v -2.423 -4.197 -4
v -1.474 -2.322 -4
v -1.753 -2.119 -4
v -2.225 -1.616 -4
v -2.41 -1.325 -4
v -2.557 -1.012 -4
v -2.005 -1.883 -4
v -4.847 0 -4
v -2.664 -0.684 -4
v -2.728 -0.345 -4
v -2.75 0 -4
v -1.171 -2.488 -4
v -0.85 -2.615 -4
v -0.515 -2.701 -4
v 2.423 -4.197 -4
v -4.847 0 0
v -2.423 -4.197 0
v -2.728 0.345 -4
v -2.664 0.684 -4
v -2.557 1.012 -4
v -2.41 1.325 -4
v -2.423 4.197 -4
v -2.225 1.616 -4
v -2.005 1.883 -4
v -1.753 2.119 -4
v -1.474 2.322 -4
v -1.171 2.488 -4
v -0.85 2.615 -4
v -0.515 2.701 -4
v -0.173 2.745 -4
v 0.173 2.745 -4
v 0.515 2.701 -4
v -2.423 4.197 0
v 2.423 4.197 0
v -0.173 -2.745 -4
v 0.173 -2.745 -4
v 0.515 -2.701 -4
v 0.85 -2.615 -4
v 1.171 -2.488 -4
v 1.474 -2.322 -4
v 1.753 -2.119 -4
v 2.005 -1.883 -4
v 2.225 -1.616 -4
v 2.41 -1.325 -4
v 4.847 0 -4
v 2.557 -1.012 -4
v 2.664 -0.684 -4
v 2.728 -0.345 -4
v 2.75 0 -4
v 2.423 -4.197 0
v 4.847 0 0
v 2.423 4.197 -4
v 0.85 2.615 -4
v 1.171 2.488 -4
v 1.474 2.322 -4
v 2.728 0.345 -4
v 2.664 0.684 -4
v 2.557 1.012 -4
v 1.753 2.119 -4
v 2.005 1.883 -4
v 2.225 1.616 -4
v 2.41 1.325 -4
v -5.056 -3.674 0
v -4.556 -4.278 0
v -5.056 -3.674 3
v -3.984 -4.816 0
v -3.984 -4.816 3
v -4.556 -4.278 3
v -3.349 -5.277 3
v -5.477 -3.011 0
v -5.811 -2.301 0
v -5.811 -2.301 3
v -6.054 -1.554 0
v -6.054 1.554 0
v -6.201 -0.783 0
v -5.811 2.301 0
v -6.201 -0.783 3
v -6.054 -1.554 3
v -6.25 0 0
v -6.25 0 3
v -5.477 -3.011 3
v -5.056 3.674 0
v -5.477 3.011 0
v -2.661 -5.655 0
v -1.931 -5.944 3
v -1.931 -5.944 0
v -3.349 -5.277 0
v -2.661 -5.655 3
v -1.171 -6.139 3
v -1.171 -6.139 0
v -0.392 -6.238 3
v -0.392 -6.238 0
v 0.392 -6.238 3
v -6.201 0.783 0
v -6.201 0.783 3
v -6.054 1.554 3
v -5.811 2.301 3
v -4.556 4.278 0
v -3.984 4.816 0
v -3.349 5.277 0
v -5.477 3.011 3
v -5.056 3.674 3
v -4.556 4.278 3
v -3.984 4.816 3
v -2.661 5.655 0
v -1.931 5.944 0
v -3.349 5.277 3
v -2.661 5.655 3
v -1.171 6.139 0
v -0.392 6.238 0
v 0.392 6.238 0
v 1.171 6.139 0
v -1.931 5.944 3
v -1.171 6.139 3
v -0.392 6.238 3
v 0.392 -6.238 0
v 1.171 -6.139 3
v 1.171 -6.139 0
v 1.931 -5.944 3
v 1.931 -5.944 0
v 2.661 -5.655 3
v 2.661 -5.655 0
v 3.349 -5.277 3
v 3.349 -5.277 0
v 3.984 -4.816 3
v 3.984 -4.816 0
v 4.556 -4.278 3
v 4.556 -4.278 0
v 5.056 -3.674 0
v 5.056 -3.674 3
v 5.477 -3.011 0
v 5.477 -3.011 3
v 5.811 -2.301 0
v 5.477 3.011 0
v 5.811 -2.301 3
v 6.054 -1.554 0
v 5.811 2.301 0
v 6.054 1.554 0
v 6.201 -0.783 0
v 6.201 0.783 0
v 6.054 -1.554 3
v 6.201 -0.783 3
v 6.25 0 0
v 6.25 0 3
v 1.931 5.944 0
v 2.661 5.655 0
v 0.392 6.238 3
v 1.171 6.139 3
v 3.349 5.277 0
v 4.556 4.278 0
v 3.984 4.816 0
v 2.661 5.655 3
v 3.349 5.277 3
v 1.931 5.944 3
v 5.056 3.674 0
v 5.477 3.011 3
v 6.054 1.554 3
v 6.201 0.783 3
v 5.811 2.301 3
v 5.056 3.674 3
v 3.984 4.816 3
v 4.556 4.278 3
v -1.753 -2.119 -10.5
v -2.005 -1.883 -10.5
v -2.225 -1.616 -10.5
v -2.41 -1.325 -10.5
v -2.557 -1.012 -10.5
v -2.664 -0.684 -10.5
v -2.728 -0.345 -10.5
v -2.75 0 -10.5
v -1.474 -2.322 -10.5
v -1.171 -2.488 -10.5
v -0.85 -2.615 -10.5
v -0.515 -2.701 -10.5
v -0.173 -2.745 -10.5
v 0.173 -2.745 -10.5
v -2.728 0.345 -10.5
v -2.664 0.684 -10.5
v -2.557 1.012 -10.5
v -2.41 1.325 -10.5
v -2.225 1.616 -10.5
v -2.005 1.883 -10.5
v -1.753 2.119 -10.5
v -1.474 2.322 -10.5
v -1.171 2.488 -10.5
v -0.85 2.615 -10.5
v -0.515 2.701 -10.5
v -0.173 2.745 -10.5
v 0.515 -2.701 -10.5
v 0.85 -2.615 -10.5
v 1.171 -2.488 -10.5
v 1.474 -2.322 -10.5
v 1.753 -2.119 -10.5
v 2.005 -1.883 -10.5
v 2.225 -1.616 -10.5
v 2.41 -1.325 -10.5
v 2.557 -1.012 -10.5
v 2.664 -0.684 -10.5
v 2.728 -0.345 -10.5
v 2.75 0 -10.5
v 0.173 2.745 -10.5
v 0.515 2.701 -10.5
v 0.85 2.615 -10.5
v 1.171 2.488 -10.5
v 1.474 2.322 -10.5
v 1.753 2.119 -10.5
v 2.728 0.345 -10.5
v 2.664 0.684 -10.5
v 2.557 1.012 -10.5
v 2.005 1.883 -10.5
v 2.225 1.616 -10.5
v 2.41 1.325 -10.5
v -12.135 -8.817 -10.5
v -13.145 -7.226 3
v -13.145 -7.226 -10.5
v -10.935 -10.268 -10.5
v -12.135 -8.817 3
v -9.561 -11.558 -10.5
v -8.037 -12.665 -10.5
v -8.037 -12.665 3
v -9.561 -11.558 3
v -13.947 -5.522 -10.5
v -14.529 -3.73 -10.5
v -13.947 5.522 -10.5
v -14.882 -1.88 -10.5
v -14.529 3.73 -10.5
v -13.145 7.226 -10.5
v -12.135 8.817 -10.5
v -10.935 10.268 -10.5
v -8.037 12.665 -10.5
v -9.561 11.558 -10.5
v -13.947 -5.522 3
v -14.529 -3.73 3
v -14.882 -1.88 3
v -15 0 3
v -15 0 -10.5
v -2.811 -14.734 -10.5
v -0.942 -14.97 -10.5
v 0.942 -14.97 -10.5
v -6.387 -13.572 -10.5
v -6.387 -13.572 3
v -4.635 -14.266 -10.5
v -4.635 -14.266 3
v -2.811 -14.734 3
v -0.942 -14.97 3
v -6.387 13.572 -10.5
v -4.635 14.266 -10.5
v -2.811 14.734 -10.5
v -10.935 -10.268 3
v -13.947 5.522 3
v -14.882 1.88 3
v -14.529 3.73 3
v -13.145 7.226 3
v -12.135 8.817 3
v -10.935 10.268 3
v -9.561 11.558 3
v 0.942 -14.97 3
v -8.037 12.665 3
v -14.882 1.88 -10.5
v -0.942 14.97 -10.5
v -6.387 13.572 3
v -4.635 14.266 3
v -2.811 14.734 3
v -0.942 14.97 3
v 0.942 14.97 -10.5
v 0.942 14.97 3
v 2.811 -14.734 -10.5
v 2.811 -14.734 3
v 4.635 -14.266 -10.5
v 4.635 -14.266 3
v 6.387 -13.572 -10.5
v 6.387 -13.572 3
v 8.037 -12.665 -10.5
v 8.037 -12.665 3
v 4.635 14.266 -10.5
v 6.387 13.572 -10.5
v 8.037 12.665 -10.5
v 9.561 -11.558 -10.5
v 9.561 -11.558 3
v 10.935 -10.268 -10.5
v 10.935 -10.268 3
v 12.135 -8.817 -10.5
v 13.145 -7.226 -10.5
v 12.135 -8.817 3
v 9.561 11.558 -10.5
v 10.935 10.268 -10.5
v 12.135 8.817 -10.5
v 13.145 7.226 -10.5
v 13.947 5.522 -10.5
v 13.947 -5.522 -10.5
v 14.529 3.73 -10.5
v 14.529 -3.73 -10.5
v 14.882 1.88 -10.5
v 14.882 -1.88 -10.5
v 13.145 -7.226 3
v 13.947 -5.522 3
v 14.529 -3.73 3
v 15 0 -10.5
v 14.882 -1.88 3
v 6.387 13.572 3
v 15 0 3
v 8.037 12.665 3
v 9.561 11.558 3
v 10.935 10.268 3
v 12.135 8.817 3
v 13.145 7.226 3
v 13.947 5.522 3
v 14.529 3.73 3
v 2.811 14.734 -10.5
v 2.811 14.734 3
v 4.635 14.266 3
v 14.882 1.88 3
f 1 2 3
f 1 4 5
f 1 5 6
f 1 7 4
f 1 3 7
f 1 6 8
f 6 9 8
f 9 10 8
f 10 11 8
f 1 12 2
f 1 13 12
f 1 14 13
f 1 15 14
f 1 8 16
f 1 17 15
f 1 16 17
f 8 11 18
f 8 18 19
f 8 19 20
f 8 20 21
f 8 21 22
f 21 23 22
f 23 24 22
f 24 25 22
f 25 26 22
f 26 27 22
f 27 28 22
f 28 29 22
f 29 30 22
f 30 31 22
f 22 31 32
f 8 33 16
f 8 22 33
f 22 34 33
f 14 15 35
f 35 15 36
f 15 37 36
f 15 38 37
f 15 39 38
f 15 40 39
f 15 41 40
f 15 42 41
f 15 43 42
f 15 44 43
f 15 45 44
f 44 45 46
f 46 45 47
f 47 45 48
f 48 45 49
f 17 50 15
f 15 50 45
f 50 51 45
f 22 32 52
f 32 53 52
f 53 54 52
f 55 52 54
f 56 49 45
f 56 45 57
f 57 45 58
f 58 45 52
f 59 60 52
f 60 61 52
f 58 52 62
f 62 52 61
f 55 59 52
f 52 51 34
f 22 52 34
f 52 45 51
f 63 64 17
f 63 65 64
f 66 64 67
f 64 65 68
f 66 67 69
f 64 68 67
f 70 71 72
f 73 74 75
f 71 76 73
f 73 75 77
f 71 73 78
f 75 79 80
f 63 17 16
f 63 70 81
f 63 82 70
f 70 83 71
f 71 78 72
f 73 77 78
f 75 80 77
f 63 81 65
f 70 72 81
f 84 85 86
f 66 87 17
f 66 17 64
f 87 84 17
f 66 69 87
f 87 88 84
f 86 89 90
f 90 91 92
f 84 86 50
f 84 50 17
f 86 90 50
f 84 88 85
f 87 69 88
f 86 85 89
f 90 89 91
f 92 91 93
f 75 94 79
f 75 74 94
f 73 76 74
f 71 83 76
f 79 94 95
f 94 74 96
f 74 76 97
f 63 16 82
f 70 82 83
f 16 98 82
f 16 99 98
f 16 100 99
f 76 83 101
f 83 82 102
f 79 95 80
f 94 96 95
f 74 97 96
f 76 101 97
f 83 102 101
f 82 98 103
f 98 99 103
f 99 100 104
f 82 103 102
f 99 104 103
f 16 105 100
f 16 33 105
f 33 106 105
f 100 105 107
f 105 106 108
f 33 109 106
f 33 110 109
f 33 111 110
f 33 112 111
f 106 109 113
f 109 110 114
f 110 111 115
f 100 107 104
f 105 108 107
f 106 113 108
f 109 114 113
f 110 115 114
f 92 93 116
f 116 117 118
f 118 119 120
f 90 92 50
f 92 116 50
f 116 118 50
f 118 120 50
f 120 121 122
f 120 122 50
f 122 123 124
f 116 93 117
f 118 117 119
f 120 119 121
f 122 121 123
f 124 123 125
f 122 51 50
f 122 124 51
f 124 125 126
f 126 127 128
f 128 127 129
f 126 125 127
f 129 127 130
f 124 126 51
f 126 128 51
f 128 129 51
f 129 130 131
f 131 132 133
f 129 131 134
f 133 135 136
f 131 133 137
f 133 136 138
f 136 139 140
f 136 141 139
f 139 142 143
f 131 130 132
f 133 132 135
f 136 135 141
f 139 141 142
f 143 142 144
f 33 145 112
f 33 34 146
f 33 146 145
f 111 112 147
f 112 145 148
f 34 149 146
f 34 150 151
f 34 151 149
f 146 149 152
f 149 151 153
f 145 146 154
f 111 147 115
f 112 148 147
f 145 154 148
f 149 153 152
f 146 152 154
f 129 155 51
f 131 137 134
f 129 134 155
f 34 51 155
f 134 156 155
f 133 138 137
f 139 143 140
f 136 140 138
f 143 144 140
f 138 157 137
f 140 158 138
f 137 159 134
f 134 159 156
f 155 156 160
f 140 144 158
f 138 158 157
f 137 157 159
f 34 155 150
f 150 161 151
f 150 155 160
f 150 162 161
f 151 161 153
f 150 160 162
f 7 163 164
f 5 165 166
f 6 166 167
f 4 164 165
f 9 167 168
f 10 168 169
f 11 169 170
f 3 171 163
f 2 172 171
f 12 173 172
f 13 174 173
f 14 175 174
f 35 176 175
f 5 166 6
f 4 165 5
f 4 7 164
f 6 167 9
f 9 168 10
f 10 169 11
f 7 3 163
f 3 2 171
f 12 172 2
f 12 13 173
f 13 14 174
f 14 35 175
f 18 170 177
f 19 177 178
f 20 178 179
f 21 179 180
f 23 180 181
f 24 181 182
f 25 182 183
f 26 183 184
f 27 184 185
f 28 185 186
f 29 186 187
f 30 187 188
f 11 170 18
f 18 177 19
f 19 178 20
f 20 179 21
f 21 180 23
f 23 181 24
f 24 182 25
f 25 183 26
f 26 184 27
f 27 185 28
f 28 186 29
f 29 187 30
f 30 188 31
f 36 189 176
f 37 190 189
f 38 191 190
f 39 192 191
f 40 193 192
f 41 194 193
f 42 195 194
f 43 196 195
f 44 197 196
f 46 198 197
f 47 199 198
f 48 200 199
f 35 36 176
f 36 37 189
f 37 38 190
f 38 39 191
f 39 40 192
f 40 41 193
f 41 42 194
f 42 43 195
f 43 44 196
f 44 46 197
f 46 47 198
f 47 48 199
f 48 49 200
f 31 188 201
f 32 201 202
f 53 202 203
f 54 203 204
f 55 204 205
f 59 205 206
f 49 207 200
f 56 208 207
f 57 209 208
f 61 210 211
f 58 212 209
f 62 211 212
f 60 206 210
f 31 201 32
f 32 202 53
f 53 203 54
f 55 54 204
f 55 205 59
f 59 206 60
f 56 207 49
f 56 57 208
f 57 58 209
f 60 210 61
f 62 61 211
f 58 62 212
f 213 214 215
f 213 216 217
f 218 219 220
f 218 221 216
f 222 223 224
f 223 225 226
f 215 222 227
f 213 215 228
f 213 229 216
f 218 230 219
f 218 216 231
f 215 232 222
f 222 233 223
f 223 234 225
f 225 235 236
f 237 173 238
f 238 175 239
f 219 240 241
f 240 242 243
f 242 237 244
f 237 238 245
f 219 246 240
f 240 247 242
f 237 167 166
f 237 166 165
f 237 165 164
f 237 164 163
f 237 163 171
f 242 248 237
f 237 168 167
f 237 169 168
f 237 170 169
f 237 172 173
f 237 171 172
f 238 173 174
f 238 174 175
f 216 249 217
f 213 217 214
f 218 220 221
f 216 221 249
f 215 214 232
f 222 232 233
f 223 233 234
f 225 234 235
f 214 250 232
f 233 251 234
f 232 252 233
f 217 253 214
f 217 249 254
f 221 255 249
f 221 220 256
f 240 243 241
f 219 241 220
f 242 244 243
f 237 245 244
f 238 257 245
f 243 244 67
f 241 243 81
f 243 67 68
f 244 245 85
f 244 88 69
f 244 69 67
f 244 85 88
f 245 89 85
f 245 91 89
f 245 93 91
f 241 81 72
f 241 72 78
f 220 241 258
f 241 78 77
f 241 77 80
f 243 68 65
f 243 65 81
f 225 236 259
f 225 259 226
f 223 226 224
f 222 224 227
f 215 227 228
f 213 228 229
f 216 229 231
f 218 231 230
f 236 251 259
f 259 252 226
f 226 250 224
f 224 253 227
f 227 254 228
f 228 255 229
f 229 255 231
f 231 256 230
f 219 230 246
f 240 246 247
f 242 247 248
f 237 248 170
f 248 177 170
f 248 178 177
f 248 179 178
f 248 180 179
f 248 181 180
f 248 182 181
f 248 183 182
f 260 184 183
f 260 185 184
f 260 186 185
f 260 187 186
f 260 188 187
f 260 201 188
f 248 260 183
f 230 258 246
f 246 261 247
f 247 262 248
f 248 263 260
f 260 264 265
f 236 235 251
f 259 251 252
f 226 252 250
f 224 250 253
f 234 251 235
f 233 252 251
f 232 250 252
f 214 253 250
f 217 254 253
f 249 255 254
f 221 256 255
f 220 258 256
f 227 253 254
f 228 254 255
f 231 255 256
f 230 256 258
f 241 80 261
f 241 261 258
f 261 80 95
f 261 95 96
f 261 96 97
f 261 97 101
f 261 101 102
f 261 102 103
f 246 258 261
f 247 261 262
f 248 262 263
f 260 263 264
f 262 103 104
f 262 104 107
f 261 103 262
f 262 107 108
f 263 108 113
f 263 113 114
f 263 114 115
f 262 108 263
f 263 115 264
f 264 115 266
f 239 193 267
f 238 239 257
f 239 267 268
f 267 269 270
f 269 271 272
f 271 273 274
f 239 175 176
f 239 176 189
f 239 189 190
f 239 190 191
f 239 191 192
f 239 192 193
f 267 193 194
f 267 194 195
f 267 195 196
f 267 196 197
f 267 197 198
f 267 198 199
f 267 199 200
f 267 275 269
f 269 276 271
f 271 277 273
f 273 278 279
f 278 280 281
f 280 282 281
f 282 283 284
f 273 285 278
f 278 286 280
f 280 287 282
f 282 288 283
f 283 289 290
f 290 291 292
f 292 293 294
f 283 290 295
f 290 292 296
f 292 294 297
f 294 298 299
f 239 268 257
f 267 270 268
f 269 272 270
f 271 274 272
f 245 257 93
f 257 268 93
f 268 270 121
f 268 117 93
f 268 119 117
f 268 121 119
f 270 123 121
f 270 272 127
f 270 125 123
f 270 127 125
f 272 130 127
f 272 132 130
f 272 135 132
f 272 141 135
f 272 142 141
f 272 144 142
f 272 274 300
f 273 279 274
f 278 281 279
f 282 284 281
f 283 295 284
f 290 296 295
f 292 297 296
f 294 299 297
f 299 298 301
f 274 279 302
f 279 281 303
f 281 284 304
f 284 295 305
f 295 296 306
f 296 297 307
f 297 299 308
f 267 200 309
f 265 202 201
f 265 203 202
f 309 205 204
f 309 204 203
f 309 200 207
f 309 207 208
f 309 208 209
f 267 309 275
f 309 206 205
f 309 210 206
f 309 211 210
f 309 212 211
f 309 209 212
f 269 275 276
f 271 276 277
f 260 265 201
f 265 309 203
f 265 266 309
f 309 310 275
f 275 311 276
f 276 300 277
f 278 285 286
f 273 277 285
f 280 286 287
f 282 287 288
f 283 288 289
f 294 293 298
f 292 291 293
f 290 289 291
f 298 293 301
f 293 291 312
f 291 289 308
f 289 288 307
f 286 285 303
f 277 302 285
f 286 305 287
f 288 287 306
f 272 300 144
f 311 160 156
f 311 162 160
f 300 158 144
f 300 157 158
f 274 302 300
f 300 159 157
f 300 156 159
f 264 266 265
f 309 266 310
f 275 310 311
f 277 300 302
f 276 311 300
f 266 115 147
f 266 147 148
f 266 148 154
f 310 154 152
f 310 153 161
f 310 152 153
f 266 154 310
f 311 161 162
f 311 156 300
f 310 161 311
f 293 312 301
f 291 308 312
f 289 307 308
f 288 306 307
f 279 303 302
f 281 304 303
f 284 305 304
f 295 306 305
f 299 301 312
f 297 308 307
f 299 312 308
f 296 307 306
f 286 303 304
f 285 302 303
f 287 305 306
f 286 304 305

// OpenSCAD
$fn = 50;

difference() {
	union() {
		translate(v = [0, 0, -10.5]) {
			cylinder(h = 13.5, r = 15.0);
		}
	}
	union() {
		translate(v = [0, 0, 0]) {
			rotate(a = [0, 0, 0]) {
				difference() {
					union() {
						translate(v = [0, 0, -4]) {
							linear_extrude(height = 4) {
								polygon(points = [[4.8468, 0.0], [2.4234000000000004, 4.197451927062417], [-2.423399999999999, 4.197451927062417], [-4.8468, 5.935618106107392e-16], [-2.423400000000002, -4.197451927062416], [2.423399999999997, -4.197451927062419]]);
							}
						}
					}
					union();
				}
			}
		}
		#cylinder(h = 3, r = 6.25);
		#translate(v = [0, 0, -100.0]) {
			cylinder(h = 200, r = 2.75);
		}
	}
}
